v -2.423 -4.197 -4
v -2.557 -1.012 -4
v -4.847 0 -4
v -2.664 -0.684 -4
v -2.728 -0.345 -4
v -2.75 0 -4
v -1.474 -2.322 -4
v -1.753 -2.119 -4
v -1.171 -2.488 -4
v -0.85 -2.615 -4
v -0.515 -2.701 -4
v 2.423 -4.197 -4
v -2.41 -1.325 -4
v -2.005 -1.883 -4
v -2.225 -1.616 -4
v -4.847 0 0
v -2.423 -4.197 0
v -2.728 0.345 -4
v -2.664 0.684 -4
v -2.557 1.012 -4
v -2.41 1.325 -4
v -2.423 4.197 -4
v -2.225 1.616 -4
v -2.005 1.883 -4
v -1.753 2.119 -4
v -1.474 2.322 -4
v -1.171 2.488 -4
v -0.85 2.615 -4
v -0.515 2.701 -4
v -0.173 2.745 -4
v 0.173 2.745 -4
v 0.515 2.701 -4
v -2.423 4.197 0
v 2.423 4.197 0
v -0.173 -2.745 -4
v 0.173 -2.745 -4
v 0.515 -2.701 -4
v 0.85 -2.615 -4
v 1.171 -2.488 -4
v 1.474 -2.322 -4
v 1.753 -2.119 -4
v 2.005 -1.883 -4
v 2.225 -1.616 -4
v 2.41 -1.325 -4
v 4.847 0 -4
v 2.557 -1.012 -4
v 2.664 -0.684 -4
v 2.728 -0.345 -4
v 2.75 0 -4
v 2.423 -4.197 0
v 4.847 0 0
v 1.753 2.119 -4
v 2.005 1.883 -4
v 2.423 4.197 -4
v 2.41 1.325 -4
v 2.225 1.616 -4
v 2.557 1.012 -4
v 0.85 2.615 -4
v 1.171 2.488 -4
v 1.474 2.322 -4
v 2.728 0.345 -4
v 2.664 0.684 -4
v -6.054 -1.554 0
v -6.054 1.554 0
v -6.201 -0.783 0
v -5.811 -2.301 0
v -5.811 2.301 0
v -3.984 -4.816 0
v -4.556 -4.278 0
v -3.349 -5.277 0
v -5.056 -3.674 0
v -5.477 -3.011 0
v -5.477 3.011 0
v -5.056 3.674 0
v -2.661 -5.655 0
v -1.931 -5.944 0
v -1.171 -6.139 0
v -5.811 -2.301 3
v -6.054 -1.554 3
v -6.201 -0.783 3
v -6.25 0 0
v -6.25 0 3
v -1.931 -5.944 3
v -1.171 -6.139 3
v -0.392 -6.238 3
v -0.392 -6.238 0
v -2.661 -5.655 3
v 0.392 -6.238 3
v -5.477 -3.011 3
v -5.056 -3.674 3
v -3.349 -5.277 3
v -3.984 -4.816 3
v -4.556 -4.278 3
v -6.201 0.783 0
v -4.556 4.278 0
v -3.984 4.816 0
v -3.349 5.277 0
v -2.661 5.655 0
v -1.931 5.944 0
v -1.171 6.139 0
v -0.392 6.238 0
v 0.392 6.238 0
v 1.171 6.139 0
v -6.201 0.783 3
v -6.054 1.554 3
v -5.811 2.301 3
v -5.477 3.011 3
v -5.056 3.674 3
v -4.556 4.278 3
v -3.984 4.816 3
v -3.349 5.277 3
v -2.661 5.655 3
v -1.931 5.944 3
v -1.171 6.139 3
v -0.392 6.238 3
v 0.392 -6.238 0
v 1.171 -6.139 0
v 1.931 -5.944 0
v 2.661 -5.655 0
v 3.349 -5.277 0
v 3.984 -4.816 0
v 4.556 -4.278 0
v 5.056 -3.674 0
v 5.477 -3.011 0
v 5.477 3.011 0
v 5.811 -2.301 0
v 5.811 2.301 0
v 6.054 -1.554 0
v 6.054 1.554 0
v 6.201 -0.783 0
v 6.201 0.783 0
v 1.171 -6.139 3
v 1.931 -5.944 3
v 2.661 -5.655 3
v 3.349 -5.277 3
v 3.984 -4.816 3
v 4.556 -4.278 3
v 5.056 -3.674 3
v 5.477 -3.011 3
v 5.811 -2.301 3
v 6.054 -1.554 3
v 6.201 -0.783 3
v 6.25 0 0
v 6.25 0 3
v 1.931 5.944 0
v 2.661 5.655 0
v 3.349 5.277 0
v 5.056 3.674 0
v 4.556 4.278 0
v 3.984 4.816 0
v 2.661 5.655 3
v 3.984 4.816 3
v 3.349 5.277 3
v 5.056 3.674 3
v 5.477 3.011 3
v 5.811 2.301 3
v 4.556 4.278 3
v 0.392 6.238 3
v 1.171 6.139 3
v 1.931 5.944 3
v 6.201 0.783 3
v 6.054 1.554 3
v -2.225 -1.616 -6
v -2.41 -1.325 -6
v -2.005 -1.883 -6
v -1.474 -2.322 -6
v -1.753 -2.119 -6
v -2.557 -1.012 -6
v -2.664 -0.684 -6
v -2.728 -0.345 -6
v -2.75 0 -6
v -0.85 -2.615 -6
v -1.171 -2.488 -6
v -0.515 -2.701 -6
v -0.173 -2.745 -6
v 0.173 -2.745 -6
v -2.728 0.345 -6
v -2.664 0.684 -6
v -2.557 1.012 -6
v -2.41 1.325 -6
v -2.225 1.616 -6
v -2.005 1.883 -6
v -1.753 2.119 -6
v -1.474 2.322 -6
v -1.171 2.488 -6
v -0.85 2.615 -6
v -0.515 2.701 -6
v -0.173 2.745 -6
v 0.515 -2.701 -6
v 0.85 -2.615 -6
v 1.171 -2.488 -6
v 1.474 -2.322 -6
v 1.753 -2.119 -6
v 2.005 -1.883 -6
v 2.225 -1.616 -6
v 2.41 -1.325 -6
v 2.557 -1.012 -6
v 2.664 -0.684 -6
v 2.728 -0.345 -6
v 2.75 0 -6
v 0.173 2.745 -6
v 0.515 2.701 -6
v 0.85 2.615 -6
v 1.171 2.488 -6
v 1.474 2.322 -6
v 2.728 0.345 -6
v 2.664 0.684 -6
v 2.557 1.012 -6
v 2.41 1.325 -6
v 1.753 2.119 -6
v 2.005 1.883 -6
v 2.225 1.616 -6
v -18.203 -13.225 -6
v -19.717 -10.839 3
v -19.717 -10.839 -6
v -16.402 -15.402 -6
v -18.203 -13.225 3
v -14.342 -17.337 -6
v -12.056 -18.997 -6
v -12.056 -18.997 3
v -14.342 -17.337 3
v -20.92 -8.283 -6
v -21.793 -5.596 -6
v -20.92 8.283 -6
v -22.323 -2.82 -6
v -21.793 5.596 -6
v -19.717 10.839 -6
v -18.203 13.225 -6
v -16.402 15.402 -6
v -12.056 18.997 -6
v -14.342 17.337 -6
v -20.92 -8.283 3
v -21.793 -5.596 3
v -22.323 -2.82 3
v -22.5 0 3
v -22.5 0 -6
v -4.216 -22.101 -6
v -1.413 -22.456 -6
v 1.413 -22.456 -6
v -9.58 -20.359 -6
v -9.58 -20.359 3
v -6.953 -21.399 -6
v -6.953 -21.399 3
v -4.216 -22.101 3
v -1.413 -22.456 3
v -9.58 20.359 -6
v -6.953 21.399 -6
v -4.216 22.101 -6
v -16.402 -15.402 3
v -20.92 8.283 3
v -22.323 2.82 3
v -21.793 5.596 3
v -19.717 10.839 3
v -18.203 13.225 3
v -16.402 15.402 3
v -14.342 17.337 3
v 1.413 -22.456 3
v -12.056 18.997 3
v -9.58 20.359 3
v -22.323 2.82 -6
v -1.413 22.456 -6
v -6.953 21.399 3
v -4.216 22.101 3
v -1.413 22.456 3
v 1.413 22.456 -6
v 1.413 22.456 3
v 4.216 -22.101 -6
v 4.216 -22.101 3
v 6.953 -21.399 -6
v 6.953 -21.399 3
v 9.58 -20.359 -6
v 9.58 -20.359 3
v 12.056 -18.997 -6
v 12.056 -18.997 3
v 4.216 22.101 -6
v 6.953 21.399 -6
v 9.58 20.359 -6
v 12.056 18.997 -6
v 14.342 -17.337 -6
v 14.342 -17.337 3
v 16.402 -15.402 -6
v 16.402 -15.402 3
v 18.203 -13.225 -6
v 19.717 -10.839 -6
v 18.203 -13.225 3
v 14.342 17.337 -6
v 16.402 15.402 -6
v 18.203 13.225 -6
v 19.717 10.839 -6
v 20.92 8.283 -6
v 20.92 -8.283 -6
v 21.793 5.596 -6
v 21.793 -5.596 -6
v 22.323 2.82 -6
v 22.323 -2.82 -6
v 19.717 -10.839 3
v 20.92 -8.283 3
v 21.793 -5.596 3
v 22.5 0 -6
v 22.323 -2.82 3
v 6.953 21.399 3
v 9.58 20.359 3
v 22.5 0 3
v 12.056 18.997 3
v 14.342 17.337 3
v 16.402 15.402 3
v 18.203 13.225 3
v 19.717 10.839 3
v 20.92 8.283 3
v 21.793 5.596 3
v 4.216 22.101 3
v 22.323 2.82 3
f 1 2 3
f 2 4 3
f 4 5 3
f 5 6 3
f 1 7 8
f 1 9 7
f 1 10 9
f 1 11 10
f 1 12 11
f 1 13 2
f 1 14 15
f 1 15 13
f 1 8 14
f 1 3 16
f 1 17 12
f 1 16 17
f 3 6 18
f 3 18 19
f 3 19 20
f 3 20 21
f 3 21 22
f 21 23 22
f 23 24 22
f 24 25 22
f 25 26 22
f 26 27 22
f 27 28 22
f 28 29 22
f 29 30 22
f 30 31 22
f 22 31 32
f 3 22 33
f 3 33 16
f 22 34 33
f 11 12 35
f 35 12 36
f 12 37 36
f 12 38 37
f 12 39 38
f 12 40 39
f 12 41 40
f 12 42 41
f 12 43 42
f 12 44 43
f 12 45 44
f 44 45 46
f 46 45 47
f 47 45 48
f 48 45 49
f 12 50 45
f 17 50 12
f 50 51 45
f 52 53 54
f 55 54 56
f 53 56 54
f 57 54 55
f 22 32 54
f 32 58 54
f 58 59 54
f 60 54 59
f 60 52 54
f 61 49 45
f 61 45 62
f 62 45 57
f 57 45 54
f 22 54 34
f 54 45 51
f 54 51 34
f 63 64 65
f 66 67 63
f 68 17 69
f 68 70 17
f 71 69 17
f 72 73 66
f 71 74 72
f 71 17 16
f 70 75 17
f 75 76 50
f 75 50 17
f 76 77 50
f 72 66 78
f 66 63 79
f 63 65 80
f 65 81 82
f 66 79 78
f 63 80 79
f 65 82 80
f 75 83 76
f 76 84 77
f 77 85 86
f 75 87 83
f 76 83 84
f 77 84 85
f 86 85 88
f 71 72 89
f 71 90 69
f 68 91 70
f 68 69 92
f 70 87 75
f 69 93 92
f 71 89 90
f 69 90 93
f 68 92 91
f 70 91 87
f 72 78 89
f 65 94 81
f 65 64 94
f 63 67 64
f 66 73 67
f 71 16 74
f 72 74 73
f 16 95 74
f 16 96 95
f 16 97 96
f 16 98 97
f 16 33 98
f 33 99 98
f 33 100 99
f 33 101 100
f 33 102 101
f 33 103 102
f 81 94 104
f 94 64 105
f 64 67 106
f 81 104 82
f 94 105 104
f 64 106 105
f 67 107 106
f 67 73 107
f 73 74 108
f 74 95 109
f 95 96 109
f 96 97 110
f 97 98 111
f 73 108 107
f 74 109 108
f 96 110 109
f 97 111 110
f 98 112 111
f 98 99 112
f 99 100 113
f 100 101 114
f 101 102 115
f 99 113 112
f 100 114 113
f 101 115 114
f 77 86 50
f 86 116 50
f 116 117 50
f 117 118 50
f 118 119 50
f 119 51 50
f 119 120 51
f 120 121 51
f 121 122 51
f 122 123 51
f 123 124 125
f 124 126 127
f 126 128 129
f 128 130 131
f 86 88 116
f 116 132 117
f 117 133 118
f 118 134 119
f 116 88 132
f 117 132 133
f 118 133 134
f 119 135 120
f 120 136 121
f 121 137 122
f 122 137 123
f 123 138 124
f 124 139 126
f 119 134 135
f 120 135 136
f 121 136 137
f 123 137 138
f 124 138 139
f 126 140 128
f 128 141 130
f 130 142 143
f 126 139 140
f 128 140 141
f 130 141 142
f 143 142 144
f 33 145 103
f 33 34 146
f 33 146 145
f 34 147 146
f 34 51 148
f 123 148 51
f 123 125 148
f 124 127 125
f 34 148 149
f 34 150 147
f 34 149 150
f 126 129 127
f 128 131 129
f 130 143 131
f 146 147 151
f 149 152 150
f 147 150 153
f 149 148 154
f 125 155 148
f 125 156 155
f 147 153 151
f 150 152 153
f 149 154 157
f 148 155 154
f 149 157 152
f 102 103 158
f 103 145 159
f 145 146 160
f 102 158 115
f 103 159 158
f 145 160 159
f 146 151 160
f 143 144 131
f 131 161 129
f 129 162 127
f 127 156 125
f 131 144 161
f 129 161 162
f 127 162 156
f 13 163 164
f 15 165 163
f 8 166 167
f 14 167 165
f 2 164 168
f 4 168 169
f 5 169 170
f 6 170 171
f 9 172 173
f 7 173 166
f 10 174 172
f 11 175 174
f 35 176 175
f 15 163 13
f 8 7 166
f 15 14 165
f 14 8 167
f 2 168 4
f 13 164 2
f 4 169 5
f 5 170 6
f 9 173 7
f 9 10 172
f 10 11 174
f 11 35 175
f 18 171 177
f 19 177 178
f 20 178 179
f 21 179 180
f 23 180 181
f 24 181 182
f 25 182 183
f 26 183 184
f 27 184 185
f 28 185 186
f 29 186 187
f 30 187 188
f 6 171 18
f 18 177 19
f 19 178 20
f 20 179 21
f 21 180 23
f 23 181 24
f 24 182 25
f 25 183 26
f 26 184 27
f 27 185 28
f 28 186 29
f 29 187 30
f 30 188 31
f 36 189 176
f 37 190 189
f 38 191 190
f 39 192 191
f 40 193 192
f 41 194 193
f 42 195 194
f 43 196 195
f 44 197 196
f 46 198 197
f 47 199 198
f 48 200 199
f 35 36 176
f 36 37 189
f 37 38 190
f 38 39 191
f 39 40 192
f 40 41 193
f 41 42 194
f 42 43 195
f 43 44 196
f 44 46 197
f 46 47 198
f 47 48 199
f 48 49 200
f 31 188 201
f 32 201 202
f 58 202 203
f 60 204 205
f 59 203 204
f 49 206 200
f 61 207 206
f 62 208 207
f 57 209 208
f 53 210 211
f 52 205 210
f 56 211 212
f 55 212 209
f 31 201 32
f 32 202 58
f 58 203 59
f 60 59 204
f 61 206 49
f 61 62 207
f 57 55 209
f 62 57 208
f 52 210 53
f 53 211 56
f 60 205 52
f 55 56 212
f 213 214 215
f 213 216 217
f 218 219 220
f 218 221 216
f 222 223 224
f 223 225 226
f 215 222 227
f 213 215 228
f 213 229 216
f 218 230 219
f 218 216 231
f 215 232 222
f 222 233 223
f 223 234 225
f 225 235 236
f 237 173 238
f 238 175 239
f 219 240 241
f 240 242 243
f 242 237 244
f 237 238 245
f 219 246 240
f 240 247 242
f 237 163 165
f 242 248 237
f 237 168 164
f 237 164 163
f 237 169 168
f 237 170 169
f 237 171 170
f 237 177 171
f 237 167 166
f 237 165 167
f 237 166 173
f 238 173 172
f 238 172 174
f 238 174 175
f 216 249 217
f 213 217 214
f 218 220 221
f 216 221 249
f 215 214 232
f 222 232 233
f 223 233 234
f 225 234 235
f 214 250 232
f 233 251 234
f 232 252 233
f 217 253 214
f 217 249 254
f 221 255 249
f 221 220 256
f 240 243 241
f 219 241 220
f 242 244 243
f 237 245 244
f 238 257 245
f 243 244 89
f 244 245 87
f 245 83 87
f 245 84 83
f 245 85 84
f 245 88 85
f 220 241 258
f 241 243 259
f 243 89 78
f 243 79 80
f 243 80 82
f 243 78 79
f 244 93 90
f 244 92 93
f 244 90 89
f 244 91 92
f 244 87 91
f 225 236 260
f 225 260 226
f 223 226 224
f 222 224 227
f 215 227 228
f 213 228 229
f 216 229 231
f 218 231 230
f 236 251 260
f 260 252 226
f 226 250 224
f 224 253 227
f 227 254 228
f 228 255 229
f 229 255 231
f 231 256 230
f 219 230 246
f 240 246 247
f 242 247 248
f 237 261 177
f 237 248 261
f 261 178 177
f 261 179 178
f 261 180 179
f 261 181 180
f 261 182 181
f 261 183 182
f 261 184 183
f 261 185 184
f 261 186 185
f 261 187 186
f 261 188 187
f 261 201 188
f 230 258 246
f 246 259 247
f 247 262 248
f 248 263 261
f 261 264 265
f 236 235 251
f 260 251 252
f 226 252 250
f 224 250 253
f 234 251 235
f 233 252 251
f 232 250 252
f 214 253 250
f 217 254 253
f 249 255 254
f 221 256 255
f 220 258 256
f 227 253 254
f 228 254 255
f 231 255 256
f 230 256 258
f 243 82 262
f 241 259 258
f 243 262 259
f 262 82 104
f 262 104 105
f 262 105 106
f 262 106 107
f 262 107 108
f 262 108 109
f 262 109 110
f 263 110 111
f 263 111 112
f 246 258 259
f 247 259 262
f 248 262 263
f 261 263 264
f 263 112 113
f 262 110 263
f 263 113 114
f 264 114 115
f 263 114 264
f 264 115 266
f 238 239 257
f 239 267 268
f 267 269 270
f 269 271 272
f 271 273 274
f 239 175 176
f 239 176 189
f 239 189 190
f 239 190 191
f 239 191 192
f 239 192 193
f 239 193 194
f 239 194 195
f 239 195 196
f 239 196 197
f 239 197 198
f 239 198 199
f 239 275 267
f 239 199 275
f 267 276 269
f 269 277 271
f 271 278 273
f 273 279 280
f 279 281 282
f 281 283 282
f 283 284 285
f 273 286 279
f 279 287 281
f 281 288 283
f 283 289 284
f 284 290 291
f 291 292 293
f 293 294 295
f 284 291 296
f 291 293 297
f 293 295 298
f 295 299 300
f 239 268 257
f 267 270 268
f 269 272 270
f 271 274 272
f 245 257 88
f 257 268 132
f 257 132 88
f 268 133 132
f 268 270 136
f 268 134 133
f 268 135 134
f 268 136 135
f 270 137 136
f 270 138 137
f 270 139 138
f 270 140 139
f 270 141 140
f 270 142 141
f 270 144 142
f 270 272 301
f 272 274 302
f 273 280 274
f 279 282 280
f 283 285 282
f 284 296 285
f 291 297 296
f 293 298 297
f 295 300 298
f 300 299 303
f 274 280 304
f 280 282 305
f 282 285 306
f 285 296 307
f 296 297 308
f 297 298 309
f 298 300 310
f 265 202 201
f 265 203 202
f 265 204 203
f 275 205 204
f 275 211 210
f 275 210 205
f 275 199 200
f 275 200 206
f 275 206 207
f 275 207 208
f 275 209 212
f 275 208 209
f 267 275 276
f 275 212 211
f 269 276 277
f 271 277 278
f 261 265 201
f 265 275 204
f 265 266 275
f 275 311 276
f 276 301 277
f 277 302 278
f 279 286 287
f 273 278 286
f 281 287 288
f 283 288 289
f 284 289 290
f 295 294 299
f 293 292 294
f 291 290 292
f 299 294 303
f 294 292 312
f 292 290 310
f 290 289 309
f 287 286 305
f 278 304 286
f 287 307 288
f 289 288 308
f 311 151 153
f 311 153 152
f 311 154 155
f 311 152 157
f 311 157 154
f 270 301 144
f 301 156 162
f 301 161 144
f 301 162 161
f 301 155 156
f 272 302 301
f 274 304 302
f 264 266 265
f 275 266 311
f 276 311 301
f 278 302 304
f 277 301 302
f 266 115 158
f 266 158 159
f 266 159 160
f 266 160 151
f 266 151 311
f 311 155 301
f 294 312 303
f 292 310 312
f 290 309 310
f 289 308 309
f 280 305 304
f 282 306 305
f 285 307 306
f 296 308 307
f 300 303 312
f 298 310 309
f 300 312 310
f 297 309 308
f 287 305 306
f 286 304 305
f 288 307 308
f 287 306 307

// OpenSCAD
$fn = 50;

difference() {
	union() {
		translate(v = [0, 0, -6.0]) {
			cylinder(h = 9.0, r = 22.5);
		}
	}
	union() {
		translate(v = [0, 0, 0]) {
			rotate(a = [0, 0, 0]) {
				difference() {
					union() {
						translate(v = [0, 0, -4]) {
							linear_extrude(height = 4) {
								polygon(points = [[4.8468, 0.0], [2.4234000000000004, 4.197451927062417], [-2.423399999999999, 4.197451927062417], [-4.8468, 5.935618106107392e-16], [-2.423400000000002, -4.197451927062416], [2.423399999999997, -4.197451927062419]]);
							}
						}
					}
					union();
				}
			}
		}
		#cylinder(h = 3, r = 6.25);
		#translate(v = [0, 0, -100.0]) {
			cylinder(h = 200, r = 2.75);
		}
	}
}
